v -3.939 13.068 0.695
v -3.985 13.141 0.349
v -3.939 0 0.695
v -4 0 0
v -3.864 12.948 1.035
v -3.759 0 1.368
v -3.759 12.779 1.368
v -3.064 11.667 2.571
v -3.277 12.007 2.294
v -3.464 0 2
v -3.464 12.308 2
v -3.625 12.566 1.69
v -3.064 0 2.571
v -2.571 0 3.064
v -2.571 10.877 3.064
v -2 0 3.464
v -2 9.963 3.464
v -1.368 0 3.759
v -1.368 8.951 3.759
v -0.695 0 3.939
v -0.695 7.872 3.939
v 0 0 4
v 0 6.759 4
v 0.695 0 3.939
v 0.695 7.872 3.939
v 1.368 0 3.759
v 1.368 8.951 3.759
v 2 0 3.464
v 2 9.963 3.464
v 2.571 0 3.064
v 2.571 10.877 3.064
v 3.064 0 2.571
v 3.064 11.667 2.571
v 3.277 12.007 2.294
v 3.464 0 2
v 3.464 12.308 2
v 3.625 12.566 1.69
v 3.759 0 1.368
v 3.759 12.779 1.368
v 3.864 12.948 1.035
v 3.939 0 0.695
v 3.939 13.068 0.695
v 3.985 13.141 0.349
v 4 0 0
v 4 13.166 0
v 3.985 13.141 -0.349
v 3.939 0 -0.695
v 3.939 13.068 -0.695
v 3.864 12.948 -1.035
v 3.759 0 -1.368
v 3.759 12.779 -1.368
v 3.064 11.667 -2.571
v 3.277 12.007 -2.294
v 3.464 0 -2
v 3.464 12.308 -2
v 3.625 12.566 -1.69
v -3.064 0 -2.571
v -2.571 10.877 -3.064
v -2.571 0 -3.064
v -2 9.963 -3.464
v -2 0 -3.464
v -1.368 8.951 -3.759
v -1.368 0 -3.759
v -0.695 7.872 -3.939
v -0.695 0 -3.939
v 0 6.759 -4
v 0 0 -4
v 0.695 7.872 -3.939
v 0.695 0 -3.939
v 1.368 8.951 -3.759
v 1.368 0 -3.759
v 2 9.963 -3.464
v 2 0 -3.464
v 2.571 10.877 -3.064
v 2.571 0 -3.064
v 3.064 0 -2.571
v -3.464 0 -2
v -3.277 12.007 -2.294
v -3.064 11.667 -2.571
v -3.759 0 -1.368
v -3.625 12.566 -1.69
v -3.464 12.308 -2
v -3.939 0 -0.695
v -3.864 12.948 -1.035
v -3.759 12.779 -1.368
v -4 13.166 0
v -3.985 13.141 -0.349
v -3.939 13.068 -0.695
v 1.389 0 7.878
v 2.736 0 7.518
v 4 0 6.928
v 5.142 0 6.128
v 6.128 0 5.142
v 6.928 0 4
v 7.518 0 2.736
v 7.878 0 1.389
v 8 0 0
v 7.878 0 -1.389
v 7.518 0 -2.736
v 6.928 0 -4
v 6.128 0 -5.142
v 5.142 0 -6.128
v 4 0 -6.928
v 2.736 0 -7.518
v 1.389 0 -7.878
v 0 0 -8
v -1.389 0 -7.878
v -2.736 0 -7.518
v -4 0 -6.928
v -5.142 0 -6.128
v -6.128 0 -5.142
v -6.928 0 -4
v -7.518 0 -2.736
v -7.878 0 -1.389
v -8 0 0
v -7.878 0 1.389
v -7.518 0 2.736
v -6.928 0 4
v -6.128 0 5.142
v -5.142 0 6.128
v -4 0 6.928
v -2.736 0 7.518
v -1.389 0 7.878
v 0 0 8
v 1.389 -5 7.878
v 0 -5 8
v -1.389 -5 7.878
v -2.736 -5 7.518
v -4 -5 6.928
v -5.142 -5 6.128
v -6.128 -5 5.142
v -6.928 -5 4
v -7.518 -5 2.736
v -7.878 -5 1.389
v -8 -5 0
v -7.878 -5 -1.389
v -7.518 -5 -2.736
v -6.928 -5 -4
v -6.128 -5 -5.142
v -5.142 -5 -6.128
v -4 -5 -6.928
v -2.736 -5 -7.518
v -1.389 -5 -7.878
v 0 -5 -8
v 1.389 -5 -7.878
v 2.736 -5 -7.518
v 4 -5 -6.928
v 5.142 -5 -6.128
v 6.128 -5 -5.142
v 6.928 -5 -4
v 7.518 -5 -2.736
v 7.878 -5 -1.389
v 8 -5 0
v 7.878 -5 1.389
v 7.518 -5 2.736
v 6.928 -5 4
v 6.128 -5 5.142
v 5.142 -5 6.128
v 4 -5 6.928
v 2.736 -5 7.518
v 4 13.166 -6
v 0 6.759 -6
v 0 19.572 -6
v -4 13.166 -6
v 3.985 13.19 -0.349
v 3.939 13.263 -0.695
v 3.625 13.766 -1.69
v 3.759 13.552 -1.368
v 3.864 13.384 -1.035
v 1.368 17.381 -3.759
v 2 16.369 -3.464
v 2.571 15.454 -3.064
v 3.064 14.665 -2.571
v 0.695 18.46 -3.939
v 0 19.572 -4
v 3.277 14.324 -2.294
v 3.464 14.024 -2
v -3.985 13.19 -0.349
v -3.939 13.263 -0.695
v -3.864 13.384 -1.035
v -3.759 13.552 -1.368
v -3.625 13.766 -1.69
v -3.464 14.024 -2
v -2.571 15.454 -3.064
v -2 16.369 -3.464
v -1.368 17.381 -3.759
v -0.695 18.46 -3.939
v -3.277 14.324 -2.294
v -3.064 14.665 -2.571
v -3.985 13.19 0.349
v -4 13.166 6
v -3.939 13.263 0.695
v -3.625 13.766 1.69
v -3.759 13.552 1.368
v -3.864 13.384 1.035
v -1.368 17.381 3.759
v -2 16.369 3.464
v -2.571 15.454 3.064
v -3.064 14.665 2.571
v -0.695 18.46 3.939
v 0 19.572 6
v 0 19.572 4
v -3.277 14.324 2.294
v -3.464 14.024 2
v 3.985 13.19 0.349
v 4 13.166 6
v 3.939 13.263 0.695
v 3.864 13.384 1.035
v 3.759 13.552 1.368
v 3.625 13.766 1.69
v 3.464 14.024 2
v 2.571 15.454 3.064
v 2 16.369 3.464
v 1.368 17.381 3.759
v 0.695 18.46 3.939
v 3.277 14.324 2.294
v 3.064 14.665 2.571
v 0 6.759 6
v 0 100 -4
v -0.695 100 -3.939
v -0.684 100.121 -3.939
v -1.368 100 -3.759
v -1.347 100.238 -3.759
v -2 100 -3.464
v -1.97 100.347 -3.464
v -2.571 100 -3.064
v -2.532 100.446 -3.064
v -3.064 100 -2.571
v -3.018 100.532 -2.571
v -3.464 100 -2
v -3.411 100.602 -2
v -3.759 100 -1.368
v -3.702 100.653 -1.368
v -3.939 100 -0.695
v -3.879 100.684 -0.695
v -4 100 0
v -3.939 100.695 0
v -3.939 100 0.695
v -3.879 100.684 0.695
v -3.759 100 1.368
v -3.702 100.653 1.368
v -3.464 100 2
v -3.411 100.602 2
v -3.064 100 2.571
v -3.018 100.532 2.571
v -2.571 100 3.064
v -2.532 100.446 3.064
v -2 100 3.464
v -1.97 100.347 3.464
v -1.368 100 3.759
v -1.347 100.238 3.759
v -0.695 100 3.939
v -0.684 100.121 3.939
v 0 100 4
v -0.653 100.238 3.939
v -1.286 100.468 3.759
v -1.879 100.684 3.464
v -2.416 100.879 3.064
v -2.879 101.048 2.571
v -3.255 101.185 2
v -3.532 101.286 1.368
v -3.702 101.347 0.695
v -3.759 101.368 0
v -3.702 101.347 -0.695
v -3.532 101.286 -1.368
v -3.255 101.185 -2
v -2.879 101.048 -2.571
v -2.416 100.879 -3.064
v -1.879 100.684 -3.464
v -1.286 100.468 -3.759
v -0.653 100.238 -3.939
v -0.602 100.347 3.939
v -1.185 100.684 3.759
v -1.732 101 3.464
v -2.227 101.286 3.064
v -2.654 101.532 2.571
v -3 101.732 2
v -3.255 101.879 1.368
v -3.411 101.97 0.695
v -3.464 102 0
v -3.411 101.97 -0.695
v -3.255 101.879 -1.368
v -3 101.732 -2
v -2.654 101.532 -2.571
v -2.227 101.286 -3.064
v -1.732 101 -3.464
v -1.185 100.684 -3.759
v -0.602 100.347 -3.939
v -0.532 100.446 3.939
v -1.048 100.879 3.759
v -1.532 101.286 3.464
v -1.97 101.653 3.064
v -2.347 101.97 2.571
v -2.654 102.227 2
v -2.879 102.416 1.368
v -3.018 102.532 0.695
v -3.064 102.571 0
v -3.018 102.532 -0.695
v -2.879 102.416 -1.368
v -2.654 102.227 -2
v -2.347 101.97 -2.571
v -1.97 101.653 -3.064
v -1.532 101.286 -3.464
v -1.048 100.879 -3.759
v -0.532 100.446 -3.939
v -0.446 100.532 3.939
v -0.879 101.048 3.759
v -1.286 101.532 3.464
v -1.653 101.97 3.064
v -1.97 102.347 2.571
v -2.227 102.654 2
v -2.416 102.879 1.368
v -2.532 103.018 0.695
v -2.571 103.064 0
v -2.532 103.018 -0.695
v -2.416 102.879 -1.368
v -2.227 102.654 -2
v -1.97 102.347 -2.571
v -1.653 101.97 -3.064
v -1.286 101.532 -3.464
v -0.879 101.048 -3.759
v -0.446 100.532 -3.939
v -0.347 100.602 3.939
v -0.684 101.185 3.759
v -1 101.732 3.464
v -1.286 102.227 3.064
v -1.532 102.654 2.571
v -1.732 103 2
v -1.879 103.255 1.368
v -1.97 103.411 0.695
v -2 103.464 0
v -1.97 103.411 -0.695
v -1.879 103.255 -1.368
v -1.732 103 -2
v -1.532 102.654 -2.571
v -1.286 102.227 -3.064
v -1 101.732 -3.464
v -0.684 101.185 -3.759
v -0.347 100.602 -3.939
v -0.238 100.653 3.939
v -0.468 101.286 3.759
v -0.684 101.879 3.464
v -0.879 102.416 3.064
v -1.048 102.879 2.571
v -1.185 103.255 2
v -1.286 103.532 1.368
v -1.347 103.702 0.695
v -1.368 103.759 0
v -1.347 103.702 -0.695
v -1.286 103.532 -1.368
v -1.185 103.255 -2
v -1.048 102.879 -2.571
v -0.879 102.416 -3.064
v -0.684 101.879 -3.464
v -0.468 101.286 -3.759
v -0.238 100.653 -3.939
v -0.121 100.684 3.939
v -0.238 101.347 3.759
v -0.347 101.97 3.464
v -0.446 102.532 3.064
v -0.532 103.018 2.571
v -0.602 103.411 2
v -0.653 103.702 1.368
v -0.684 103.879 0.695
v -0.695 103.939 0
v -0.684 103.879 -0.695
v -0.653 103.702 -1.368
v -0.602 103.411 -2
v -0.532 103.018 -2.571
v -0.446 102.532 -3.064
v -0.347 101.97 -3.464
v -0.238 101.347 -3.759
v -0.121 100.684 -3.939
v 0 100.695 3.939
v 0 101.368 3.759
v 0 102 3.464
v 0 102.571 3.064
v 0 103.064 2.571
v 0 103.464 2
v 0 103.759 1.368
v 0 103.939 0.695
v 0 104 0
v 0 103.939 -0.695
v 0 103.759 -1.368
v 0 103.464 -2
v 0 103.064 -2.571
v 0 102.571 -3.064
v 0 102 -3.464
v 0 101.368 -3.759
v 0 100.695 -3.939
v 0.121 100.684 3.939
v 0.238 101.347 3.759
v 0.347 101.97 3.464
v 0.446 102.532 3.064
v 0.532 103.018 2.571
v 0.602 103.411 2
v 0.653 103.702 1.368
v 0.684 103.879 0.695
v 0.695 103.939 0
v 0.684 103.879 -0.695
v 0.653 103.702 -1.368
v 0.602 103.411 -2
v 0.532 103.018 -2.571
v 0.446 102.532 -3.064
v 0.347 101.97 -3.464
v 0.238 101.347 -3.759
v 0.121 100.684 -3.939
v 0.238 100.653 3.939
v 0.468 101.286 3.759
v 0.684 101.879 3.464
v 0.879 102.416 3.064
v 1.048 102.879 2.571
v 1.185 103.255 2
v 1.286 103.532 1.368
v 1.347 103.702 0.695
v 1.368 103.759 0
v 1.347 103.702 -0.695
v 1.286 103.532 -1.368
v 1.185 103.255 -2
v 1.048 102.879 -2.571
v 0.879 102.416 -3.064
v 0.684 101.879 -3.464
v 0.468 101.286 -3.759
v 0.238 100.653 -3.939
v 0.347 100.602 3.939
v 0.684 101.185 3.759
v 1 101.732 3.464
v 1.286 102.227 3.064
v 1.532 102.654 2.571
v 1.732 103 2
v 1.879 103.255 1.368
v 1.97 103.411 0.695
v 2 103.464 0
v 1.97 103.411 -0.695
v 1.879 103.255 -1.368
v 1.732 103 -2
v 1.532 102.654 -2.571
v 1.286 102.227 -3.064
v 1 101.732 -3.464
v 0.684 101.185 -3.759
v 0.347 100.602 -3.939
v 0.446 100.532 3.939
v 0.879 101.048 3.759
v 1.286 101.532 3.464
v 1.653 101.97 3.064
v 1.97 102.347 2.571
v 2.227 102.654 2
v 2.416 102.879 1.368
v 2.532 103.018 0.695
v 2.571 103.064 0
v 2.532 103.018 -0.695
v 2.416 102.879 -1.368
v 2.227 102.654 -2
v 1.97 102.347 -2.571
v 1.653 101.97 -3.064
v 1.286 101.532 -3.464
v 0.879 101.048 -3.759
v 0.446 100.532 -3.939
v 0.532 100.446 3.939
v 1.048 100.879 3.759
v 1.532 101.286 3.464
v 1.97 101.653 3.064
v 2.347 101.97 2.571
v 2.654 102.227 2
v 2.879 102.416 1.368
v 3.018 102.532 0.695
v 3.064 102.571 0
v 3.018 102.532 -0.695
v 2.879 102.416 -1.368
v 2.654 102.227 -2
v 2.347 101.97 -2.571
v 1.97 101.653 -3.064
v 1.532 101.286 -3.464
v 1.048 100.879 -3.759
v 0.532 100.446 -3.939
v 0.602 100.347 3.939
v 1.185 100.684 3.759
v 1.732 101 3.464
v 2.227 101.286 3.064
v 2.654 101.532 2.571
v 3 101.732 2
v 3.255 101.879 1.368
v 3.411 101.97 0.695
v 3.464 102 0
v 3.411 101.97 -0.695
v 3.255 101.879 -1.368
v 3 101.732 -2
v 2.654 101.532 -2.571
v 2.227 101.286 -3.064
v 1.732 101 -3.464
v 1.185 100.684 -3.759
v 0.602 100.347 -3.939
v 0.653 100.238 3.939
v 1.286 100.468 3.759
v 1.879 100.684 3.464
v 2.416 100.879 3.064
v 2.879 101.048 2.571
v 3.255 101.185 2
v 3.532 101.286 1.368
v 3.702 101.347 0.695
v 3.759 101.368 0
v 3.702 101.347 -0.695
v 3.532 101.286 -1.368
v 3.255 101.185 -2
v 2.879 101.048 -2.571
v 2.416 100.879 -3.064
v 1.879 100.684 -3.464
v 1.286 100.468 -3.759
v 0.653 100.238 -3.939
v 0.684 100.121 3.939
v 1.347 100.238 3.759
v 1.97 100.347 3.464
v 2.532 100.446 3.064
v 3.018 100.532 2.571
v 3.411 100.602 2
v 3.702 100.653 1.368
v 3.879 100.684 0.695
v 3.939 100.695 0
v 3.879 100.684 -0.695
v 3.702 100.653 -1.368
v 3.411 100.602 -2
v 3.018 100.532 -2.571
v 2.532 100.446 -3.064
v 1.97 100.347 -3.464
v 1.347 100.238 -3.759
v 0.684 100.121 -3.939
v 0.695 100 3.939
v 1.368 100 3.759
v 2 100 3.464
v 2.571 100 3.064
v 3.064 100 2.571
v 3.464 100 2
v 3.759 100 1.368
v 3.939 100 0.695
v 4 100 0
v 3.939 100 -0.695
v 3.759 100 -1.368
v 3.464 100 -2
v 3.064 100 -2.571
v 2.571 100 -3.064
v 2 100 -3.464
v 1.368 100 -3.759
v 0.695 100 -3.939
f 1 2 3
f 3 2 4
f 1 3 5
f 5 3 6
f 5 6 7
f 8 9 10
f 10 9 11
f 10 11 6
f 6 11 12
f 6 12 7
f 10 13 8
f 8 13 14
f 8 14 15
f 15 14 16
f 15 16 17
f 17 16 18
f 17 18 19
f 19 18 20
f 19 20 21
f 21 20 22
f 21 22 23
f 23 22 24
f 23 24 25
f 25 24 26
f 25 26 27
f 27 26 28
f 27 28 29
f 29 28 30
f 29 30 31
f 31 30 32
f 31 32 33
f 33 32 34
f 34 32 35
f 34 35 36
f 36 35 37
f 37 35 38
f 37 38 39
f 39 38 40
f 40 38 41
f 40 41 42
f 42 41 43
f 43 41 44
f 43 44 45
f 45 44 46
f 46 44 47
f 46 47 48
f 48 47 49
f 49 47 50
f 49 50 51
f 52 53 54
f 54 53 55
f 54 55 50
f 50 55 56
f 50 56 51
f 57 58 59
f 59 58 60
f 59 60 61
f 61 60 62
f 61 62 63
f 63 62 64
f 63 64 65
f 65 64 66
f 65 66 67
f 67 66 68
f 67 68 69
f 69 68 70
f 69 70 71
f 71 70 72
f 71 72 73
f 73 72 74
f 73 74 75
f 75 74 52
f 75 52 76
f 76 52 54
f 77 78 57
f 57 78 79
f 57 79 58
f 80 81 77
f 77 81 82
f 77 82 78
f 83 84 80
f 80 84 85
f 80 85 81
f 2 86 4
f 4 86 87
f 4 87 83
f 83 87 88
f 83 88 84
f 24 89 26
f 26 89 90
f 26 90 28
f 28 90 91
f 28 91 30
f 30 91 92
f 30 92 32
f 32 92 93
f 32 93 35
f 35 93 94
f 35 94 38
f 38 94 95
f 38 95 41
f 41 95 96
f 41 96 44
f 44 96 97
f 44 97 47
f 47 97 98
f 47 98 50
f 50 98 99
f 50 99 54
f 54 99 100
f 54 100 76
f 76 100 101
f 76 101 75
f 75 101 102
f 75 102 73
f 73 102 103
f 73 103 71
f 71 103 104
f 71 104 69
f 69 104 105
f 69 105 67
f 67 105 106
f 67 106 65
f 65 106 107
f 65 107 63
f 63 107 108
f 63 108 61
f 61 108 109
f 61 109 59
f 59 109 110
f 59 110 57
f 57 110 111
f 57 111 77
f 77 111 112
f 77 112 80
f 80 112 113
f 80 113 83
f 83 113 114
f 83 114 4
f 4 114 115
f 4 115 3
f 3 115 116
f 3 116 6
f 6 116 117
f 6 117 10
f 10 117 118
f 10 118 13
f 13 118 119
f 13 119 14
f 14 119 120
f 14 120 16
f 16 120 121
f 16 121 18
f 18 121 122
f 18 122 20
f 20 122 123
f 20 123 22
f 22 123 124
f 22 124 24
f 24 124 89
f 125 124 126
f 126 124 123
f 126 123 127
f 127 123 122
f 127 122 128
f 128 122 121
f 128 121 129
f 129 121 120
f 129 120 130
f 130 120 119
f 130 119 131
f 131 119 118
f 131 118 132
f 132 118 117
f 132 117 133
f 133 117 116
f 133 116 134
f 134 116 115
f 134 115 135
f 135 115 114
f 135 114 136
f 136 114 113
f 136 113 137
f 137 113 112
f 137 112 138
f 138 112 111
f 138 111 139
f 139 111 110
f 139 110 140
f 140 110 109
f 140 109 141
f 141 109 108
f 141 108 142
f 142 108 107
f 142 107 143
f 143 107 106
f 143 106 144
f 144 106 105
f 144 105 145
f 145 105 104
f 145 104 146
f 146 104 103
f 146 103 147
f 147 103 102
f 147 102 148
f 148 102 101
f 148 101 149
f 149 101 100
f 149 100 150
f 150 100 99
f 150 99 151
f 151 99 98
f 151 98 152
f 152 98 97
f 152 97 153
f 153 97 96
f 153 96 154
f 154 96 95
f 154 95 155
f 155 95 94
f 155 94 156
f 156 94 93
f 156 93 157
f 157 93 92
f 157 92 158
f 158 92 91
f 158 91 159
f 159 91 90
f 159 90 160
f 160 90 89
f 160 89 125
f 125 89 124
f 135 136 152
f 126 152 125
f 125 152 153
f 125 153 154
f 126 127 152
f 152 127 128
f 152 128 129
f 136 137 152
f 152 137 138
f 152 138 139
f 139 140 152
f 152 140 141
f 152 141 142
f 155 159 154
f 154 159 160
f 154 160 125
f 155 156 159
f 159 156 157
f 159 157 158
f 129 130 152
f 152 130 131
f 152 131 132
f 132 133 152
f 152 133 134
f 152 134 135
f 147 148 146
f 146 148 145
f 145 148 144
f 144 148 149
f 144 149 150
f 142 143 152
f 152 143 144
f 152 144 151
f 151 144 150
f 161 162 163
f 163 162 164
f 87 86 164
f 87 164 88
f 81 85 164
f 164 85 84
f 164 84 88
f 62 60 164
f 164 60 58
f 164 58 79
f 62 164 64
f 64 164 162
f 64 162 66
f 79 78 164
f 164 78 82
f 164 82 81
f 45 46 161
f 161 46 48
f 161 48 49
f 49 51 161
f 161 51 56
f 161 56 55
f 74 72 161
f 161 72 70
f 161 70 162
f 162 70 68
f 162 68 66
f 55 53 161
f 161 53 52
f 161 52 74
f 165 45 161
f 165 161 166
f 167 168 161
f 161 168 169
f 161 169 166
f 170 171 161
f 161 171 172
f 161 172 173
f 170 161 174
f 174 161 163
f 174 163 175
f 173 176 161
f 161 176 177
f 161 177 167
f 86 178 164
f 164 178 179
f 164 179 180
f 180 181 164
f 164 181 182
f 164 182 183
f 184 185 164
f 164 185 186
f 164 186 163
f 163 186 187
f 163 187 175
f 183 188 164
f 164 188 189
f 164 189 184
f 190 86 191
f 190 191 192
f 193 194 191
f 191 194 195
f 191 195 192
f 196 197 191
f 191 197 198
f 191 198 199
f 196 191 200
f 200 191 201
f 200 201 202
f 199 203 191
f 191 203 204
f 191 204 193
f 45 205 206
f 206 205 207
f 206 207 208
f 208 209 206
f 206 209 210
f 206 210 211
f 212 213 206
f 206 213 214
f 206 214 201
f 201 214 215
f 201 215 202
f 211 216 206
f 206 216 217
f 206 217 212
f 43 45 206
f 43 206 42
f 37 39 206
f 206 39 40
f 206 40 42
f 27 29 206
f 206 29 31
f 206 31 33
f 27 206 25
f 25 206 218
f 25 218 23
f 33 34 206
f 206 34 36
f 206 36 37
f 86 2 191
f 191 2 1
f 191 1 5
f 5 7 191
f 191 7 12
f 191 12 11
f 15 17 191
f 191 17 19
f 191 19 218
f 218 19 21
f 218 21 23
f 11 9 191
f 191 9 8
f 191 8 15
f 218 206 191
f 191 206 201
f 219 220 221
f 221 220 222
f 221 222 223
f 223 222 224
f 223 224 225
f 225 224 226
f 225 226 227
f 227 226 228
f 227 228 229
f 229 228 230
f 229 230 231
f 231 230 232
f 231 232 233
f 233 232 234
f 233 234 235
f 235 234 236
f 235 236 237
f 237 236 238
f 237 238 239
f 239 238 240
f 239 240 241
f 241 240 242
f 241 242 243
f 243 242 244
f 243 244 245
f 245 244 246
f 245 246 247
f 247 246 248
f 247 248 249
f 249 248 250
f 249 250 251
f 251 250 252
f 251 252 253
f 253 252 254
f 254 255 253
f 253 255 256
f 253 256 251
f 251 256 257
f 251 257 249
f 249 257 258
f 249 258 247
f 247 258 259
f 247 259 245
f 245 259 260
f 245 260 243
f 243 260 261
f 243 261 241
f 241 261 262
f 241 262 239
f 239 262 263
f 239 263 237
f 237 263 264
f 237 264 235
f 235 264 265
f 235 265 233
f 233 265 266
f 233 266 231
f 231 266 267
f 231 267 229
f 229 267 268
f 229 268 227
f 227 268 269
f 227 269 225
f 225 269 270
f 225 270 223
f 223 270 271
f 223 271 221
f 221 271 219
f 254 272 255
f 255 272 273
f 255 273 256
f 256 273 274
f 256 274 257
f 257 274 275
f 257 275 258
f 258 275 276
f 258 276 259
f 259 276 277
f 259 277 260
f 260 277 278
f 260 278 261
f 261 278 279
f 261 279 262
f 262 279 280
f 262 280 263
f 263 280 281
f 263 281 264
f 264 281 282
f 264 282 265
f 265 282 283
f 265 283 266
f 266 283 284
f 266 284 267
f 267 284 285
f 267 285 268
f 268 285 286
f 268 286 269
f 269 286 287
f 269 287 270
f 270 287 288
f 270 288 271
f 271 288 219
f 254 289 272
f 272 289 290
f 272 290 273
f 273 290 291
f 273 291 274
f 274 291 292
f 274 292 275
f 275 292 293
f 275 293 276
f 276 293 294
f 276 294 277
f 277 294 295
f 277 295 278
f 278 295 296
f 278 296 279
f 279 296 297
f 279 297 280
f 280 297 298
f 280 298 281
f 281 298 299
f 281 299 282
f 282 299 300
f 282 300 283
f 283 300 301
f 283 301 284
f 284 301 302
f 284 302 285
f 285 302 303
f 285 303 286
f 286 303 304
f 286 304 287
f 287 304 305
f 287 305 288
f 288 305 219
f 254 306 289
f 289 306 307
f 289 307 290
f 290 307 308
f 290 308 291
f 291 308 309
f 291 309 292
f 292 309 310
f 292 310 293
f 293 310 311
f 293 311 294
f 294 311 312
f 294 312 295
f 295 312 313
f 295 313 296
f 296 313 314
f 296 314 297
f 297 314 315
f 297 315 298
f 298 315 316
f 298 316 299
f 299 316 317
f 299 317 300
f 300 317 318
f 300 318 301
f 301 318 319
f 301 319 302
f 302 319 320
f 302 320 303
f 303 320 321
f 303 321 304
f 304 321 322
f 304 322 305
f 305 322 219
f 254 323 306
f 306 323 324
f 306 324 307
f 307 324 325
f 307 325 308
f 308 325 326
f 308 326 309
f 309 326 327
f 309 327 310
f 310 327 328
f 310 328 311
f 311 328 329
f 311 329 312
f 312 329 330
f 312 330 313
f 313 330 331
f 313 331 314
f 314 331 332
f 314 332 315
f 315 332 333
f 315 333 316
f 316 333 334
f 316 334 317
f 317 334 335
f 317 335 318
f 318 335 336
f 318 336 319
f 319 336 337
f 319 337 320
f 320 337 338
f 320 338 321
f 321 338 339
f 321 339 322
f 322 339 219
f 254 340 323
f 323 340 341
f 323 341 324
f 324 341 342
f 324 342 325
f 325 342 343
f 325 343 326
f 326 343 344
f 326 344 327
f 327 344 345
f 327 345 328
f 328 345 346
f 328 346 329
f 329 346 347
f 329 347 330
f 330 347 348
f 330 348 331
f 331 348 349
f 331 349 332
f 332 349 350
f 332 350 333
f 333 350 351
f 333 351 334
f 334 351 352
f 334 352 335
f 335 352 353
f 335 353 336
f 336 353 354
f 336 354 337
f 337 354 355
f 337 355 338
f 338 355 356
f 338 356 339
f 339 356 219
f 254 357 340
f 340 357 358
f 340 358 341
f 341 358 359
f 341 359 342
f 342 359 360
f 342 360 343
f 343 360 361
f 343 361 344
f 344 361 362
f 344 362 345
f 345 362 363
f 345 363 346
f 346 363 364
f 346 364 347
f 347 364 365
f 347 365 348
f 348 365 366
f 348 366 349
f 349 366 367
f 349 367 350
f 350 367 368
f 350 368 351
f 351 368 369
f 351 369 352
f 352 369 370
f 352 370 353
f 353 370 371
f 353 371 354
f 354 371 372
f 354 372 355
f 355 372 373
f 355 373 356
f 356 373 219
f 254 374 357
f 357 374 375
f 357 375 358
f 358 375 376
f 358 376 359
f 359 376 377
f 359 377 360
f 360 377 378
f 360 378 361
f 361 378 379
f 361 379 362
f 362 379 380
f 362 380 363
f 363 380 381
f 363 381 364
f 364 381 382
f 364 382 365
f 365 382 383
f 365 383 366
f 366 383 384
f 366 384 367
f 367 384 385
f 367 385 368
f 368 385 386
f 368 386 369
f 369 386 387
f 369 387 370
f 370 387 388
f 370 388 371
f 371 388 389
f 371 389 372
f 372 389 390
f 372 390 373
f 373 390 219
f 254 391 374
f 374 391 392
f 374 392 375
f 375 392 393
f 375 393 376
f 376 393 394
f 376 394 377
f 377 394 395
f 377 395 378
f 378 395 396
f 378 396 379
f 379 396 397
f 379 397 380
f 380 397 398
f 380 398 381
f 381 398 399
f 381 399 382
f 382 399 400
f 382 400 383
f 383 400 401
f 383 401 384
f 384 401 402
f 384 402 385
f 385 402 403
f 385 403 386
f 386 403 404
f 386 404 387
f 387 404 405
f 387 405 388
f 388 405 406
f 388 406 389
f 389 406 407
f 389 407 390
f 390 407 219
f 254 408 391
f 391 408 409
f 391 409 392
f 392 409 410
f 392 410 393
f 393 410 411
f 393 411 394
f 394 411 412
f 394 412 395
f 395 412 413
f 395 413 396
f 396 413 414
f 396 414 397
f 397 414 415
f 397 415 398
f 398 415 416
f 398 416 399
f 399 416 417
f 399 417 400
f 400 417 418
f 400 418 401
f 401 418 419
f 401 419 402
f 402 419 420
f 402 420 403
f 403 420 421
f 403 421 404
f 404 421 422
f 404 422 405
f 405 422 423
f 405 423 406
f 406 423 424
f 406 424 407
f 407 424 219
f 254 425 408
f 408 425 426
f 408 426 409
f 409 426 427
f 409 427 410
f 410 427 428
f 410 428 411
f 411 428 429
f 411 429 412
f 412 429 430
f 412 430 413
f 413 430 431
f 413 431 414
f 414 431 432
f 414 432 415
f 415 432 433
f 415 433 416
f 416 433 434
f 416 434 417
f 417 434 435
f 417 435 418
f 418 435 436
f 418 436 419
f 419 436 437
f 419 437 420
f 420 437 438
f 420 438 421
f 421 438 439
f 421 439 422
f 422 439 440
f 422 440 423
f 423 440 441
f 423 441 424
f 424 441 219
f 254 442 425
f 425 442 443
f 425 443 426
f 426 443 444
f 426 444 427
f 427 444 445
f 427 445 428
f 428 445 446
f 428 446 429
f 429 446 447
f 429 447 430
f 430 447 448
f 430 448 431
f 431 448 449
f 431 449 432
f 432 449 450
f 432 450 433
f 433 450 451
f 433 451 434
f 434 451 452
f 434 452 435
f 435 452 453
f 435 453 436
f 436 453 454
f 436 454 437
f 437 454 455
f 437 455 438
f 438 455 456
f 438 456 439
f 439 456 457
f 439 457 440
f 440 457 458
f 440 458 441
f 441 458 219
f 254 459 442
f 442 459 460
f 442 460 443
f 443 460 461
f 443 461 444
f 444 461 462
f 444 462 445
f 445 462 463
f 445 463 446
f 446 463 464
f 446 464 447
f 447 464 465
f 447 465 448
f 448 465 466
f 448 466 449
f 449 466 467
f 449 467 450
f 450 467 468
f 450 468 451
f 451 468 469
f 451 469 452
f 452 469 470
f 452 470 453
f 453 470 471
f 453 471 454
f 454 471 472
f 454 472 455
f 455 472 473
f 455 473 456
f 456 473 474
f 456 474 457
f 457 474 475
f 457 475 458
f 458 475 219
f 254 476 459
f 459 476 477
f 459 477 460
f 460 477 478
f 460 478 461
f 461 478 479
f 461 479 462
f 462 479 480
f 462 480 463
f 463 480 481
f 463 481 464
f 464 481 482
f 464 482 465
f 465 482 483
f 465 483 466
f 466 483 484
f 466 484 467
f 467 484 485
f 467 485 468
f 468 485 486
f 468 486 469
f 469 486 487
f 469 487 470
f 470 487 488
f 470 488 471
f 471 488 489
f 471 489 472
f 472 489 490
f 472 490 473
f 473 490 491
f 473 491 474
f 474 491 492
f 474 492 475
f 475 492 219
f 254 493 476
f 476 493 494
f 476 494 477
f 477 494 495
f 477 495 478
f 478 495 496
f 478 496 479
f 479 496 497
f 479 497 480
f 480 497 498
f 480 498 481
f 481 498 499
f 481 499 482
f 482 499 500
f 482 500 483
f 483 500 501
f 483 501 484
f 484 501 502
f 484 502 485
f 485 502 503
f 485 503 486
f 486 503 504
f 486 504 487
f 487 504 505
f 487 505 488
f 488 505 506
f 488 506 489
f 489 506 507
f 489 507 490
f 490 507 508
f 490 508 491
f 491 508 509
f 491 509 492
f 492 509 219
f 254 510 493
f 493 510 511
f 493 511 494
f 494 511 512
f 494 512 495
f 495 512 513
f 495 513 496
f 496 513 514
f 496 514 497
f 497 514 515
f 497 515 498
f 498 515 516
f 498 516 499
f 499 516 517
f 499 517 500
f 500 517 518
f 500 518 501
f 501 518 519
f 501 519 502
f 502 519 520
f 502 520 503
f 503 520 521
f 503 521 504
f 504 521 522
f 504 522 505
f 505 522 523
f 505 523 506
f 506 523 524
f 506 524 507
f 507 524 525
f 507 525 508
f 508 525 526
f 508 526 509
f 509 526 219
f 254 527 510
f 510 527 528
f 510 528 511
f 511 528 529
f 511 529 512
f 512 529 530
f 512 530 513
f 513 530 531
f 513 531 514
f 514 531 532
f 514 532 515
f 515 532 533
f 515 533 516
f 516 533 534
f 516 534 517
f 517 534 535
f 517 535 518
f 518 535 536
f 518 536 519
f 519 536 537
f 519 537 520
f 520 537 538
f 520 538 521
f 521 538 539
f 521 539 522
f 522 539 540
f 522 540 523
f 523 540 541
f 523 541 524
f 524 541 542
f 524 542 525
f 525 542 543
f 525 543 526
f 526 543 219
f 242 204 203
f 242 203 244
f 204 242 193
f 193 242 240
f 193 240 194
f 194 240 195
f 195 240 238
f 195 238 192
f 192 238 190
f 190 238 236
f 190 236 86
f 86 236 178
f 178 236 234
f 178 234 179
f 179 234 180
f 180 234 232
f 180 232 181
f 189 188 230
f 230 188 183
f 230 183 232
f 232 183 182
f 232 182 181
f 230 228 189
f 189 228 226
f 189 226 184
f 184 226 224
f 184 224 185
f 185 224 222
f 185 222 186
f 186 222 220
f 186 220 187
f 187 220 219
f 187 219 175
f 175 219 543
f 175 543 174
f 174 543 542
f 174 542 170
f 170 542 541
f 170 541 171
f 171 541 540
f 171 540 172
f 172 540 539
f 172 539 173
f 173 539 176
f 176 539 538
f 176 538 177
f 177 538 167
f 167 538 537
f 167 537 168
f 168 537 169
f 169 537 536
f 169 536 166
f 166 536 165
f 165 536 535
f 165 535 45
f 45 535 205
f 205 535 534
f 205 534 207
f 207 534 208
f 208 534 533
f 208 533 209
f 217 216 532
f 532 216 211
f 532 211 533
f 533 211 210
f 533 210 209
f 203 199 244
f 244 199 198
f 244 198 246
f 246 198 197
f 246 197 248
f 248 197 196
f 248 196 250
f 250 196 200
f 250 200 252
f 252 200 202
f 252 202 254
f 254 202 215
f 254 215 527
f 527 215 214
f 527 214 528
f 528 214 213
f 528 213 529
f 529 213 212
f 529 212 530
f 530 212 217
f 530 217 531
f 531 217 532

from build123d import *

# Parameters (mm, degrees)
SKETCH1_R                = 4
BOSS_EXTRUDE1_DEPTH      = 100
DOME1_FACE_RADIUS        = 4
DOME1_HEIGHT             = 4
SKETCH2_R                = 8
BOSS_EXTRUDE2_DEPTH      = 5
BOSS_EXTRUDE3_DEPTH      = 6
BOSS_EXTRUDE3_DEPTH_BACK = 6


with BuildPart() as part:
    # Sketch1 → Boss-Extrude1 (new body)
    with BuildSketch(Plane(origin=(0, 0, 0), x_dir=(1, 0, 0), z_dir=(0, 1, 0))):
        Circle(SKETCH1_R)
    extrude(amount=BOSS_EXTRUDE1_DEPTH)

    # Dome1: a dome of height H over a round flat face of radius A is a cap of a sphere of radius (A * A + H * H) / (2 * H)
    dome1_r = (DOME1_FACE_RADIUS * DOME1_FACE_RADIUS + DOME1_HEIGHT * DOME1_HEIGHT) / (2 * DOME1_HEIGHT)
    dome1_base = Plane((0, 100, 0), z_dir=(0, 1, 0))
    with Locations(dome1_base.offset(DOME1_HEIGHT - dome1_r)):
        dome1_ball = Sphere(dome1_r, mode=Mode.PRIVATE)
    add(split(dome1_ball, bisect_by=dome1_base, keep=Keep.TOP, mode=Mode.PRIVATE))

    # Sketch2 → Boss-Extrude2 (add)
    with BuildSketch(Plane.XZ):
        Circle(SKETCH2_R)
    extrude(amount=BOSS_EXTRUDE2_DEPTH)

    # Sketch3 → Boss-Extrude3 (add, two sides)
    with BuildSketch(Plane.XY) as boss_extrude3_sk:
        Polygon((-4, 13.165812433), (0, 6.759409677), (4, 13.165812433), (0, 19.572215189), align=None)
    extrude(amount=BOSS_EXTRUDE3_DEPTH)
    extrude(boss_extrude3_sk.sketch, amount=-BOSS_EXTRUDE3_DEPTH_BACK)


solid = part.part
